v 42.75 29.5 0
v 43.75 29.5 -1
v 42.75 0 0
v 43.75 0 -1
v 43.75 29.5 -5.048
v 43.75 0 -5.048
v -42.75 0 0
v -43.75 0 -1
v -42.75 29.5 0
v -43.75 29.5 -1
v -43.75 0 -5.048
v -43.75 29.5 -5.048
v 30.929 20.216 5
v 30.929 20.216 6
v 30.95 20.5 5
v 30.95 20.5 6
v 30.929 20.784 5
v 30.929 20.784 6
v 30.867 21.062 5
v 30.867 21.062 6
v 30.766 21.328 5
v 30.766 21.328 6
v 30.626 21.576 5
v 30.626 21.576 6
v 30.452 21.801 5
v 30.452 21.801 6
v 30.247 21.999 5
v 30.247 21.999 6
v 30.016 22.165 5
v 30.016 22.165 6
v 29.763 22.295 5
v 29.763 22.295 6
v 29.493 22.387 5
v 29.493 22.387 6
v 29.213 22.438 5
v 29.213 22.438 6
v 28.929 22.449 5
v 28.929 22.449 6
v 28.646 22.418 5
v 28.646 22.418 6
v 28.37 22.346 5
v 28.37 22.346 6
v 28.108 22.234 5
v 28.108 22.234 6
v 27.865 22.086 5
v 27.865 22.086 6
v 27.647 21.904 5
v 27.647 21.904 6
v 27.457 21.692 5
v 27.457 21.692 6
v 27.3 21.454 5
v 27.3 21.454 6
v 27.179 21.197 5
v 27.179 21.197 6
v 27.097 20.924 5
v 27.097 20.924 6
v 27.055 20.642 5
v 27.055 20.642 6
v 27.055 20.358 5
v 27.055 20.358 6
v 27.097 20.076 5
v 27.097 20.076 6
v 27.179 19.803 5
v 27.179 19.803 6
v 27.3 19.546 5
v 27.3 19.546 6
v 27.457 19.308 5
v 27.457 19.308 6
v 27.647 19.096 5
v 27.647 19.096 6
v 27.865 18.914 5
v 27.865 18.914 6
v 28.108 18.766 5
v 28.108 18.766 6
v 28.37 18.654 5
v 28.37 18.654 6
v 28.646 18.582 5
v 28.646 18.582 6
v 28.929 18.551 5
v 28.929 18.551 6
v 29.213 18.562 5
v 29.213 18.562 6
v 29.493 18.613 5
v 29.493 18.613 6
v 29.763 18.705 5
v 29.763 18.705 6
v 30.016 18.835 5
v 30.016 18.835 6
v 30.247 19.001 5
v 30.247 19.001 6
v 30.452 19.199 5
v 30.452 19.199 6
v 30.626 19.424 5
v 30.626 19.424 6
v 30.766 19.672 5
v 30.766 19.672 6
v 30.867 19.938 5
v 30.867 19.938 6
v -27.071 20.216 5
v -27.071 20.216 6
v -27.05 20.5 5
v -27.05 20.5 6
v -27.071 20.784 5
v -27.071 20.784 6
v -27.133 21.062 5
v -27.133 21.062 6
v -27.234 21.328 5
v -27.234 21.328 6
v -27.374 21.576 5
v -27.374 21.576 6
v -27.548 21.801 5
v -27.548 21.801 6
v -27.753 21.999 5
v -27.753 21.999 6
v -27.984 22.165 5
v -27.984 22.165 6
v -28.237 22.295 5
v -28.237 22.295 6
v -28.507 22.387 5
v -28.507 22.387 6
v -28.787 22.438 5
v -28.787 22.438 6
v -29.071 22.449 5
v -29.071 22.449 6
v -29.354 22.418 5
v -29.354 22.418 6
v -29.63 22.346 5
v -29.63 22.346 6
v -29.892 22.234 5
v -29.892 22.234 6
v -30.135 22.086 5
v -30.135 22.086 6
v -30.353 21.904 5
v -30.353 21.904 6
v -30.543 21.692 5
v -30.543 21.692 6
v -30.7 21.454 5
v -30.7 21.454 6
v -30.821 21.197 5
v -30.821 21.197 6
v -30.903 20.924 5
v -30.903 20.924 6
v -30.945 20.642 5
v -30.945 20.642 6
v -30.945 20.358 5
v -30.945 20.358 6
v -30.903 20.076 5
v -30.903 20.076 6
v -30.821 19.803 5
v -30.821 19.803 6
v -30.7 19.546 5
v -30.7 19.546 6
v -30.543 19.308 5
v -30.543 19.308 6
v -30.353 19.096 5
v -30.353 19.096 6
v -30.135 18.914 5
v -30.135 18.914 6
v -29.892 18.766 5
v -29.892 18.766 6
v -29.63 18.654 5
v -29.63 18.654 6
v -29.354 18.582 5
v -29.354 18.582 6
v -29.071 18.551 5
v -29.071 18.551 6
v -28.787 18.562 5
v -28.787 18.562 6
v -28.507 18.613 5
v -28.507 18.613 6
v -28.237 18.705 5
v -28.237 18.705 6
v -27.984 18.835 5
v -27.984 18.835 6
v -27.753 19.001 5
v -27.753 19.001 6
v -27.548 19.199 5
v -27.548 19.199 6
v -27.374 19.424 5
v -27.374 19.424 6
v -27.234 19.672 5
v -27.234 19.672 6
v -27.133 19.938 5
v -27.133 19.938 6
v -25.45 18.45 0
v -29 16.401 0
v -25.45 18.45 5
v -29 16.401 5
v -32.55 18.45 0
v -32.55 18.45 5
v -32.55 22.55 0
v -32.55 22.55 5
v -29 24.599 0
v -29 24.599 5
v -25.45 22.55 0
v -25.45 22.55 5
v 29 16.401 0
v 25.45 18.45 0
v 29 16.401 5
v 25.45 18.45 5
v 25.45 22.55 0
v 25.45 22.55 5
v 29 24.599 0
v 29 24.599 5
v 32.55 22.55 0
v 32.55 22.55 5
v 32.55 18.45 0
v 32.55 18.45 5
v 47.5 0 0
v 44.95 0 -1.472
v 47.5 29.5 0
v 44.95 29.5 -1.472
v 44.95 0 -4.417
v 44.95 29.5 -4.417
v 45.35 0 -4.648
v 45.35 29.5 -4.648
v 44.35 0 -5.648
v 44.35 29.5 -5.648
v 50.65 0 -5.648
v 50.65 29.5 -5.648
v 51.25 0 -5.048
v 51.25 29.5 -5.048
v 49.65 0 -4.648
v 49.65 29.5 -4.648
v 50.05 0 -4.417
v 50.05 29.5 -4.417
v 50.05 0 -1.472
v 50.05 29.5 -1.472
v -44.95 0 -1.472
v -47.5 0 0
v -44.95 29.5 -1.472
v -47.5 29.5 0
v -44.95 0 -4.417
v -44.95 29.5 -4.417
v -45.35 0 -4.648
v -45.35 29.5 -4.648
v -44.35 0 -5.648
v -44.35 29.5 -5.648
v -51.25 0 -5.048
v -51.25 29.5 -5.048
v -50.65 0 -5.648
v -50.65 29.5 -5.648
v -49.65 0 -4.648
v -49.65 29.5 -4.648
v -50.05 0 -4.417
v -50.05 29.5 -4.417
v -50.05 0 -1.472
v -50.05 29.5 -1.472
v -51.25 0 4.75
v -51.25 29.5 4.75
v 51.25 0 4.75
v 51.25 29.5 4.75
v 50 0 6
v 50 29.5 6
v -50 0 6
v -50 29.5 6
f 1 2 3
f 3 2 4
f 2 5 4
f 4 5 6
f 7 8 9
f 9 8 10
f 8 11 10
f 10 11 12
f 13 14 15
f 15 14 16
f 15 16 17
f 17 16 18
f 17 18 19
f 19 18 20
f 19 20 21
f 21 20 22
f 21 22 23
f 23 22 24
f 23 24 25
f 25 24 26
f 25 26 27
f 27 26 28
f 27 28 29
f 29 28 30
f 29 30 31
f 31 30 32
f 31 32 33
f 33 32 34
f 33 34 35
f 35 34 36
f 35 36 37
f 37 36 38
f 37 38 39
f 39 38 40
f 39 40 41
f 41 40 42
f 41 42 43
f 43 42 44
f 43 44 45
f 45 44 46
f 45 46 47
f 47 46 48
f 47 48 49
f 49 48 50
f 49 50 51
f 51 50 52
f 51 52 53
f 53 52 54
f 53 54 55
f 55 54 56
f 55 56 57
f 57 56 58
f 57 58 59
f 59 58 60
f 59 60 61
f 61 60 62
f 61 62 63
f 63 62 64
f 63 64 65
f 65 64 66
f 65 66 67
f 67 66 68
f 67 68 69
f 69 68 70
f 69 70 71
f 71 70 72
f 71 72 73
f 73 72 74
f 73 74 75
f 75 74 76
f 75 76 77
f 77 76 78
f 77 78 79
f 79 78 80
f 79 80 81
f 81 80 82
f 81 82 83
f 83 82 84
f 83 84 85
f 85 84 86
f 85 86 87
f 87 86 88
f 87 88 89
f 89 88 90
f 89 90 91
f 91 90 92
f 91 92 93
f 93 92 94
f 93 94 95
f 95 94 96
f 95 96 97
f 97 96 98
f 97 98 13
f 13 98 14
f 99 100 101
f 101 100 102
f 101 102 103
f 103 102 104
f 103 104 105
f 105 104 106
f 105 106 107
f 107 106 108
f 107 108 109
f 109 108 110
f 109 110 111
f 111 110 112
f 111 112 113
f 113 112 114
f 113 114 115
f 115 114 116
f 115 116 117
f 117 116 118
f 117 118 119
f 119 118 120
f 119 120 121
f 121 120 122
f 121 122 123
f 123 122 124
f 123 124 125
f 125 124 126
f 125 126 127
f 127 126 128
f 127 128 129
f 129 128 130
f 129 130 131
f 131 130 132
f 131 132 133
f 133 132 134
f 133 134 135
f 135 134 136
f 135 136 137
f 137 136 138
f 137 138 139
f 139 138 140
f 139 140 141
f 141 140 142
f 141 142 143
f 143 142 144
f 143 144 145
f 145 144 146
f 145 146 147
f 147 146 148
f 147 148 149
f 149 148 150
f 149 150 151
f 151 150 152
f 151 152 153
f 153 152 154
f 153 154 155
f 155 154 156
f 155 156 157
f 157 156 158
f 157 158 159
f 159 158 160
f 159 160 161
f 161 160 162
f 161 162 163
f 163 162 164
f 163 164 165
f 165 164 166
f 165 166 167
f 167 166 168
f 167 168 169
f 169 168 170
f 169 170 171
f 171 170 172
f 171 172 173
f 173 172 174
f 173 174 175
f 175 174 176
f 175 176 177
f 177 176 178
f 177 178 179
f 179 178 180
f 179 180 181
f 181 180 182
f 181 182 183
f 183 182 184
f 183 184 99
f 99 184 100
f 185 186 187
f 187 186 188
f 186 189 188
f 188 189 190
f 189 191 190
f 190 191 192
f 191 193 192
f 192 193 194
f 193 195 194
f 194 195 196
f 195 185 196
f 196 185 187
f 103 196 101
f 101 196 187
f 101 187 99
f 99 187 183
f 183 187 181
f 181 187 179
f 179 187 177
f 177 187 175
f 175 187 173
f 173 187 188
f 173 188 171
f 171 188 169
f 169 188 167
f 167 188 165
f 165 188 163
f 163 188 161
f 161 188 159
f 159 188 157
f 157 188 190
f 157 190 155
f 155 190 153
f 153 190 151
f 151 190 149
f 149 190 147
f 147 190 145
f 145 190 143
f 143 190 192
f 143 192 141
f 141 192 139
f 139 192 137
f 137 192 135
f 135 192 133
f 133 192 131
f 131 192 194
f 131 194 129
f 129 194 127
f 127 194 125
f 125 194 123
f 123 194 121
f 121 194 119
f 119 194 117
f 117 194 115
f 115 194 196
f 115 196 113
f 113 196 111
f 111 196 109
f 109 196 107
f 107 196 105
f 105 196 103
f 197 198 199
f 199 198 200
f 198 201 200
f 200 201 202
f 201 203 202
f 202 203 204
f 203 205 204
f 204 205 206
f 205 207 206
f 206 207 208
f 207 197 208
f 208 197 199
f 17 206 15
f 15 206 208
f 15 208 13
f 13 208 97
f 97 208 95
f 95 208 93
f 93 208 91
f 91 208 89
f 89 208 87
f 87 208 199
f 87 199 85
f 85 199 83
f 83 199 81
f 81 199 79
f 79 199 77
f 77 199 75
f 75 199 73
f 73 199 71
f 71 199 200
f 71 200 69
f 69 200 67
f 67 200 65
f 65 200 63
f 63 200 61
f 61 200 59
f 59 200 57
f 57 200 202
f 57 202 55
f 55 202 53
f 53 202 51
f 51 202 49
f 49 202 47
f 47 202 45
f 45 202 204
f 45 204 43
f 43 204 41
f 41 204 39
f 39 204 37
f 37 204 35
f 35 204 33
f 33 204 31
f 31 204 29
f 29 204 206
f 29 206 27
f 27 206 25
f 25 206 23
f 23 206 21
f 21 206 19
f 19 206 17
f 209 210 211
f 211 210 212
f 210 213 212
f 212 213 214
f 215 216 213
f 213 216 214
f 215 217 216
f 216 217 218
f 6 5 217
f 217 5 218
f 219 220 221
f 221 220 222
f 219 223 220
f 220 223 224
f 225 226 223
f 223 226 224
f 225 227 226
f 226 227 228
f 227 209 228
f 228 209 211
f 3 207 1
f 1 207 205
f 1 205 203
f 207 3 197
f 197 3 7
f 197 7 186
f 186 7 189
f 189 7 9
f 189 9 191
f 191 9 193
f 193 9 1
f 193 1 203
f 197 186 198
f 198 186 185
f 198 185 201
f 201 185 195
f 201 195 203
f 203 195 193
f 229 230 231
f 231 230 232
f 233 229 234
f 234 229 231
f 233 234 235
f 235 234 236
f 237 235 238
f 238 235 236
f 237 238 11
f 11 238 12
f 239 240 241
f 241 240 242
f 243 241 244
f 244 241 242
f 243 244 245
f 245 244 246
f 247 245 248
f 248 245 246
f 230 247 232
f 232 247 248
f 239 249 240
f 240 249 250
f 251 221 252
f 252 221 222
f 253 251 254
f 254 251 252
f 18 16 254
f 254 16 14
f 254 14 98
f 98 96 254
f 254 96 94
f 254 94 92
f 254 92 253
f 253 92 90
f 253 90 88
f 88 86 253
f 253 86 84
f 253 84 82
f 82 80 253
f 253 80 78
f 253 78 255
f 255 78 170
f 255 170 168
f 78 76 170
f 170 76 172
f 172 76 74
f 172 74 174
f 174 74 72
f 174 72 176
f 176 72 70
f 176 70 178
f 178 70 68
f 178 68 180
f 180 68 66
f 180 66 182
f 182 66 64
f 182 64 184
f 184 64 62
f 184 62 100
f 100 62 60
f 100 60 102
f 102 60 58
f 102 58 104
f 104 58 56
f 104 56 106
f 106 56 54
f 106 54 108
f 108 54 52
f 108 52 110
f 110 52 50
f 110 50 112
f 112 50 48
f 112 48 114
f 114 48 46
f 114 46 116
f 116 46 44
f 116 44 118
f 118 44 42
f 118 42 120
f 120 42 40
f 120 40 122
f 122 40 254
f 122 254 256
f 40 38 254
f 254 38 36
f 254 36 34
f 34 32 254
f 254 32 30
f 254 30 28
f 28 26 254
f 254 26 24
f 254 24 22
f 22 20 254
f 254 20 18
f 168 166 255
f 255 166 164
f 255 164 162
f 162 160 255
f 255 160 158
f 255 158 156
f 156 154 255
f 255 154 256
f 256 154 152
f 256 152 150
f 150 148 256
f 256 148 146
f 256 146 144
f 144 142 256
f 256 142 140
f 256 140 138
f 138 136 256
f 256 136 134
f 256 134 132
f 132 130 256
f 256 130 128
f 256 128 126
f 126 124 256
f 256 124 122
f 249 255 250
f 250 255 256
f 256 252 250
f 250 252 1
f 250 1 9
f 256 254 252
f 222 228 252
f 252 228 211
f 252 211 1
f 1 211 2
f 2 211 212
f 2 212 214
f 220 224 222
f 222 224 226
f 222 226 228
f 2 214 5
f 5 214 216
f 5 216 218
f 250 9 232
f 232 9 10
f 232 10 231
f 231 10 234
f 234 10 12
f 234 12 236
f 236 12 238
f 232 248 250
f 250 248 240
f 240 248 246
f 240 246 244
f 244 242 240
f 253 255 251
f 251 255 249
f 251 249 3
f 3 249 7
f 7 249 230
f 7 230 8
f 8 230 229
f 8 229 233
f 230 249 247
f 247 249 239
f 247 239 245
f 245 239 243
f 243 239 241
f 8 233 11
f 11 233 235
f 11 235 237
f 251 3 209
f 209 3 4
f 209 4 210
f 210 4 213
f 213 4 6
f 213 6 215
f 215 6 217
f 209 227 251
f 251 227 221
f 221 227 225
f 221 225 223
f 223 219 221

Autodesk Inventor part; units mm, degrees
ref_plane "YZ Plane" through (0, 0, 0) normal (1, 0, 0) x (0, 1, 0)
ref_plane "XZ Plane" through (0, 0, 0) normal (0, 1, 0) x (-1, 0, 0)
ref_plane "XY Plane" through (0, 0, 0) normal (0, 0, 1) x (1, 0, 0)
sketch "Sketch1" plane through (0, 0, 0) normal (0, 1, 0) x (-1, 0, 0)
  line L0 (51.25, 0) -> (-51.25, 0)
  line L1 (-51.25, 0) -> (-51.25, 4.75)
  line L2 (-51.25, 6) -> (51.25, 6) construction
  line L3 (51.25, 6) -> (51.25, 4.75) construction
  line L4 (50, 6) -> (-50, 6)
  line L5 (-50, 6) -> (-51.25, 4.75)
  line L6 (50, 6) -> (51.25, 4.75)
  line L7 (51.25, 4.75) -> (51.25, 0)
  line L8 (-51.25, 4.75) -> (-51.25, 6) construction
  line L9 (47.5, -5.889) -> (44.95, -4.4167)
  line L10 (44.95, -4.4167) -> (44.95, -1.4722)
  line L11 (44.95, -1.4722) -> (47.5, 0)
  line L12 (47.5, 0) -> (50.05, -1.4722)
  line L13 (50.05, -1.4722) -> (50.05, -4.4167)
  line L14 (50.05, -4.4167) -> (47.5, -5.889)
  line L15 (47.5, -2.9445) -> (-47.5, -2.9445) construction
  line L16 (51.25, 0) -> (51.25, -5.0477)
  line L17 (51.25, -5.0477) -> (50.65, -5.6477)
  line L18 (50.65, -5.6477) -> (49.65, -4.6477)
  line L19 (50.05, -2.9445) -> (51.25, -2.9445) construction
  line L20 (45.35, -4.6477) -> (44.35, -5.6477)
  line L21 (44.35, -5.6477) -> (43.75, -5.0477)
  line L22 (43.75, -5.0477) -> (43.75, 0)
  line L23 (47.5, -5.889) -> (47.5, 0) construction
  line L24 (43.75, 0) -> (51.25, 0) construction
  point P0 (0, 0)
  point P1 (0, 0)
  point P2 (0, 0)
  point P3 (0, 6)
  point P4 (0, 6)
  point P5 (0, -2.9445)
  point P6 (50.65, -2.9445)
  dimension "d22" = 100
  dimension "d23" = 6
  dimension "d24" = 95
  dimension "d25" = 5.1
  dimension "d26" = 6
  dimension "d27" = 1.2
  dimension "d28" = 0.4
extrude "Extrusion1" add sketch "Sketch1" along normal blind 29.5 contours L0 L1 L5 L4 L6 L7
extrude "Extrusion3" add sketch "Sketch1" along normal blind 29.5 contours L16 L17 L18 L14 L13 L12 L0 | L11 L10 L9 L20 L21 L22 L0
mirror "Mirror1" about plane through (0, 0, 0) normal (1, 0, 0) of "Extrusion3"
sketch "Sketch2" plane through (41.9, 0, 0) normal (0, 0, -1) x (-1, 0, 0)
  line L0 (41.9, 29.5) -> (41.9, 0) construction
  line L1 (12.9, 20.5) -> (70.9, 20.5) construction
  line L2 (9.35, 22.5496) -> (12.9, 24.5992)
  line L3 (12.9, 24.5992) -> (16.45, 22.5496)
  line L4 (16.45, 22.5496) -> (16.45, 18.4504)
  line L5 (16.45, 18.4504) -> (12.9, 16.4008)
  line L6 (12.9, 16.4008) -> (9.35, 18.4504)
  line L7 (9.35, 18.4504) -> (9.35, 22.5496)
  line L8 (74.45, 22.5496) -> (74.45, 18.4504)
  line L9 (74.45, 18.4504) -> (70.9, 16.4008)
  line L10 (70.9, 16.4008) -> (67.35, 18.4504)
  line L11 (67.35, 18.4504) -> (67.35, 22.5496)
  line L12 (67.35, 22.5496) -> (70.9, 24.5992)
  line L13 (70.9, 24.5992) -> (74.45, 22.5496)
  line L14 (-1.85, 0) -> (85.65, 0) construction
  line L15 (-1.85, 29.5) -> (85.65, 29.5) construction
  point P0 (41.9, 20.5)
  point P1 (41.9, 14.75)
  dimension "d9" = 58
  dimension "d10" = 7.1
  dimension "d34" = 9
extrude "Extrusion2" cut sketch "Sketch2" against normal blind 5
hole "Hole1" at (29, 20.5, 0) at (-29, 20.5, 0) direction (0, 0, 1) diameter 3.9 end through all
chamfer "Chamfer1" distance 1 angle 45 2 edges at (-43.75, 14.75, 0) (43.75, 14.75, 0)
properties part number "switch_mount"
